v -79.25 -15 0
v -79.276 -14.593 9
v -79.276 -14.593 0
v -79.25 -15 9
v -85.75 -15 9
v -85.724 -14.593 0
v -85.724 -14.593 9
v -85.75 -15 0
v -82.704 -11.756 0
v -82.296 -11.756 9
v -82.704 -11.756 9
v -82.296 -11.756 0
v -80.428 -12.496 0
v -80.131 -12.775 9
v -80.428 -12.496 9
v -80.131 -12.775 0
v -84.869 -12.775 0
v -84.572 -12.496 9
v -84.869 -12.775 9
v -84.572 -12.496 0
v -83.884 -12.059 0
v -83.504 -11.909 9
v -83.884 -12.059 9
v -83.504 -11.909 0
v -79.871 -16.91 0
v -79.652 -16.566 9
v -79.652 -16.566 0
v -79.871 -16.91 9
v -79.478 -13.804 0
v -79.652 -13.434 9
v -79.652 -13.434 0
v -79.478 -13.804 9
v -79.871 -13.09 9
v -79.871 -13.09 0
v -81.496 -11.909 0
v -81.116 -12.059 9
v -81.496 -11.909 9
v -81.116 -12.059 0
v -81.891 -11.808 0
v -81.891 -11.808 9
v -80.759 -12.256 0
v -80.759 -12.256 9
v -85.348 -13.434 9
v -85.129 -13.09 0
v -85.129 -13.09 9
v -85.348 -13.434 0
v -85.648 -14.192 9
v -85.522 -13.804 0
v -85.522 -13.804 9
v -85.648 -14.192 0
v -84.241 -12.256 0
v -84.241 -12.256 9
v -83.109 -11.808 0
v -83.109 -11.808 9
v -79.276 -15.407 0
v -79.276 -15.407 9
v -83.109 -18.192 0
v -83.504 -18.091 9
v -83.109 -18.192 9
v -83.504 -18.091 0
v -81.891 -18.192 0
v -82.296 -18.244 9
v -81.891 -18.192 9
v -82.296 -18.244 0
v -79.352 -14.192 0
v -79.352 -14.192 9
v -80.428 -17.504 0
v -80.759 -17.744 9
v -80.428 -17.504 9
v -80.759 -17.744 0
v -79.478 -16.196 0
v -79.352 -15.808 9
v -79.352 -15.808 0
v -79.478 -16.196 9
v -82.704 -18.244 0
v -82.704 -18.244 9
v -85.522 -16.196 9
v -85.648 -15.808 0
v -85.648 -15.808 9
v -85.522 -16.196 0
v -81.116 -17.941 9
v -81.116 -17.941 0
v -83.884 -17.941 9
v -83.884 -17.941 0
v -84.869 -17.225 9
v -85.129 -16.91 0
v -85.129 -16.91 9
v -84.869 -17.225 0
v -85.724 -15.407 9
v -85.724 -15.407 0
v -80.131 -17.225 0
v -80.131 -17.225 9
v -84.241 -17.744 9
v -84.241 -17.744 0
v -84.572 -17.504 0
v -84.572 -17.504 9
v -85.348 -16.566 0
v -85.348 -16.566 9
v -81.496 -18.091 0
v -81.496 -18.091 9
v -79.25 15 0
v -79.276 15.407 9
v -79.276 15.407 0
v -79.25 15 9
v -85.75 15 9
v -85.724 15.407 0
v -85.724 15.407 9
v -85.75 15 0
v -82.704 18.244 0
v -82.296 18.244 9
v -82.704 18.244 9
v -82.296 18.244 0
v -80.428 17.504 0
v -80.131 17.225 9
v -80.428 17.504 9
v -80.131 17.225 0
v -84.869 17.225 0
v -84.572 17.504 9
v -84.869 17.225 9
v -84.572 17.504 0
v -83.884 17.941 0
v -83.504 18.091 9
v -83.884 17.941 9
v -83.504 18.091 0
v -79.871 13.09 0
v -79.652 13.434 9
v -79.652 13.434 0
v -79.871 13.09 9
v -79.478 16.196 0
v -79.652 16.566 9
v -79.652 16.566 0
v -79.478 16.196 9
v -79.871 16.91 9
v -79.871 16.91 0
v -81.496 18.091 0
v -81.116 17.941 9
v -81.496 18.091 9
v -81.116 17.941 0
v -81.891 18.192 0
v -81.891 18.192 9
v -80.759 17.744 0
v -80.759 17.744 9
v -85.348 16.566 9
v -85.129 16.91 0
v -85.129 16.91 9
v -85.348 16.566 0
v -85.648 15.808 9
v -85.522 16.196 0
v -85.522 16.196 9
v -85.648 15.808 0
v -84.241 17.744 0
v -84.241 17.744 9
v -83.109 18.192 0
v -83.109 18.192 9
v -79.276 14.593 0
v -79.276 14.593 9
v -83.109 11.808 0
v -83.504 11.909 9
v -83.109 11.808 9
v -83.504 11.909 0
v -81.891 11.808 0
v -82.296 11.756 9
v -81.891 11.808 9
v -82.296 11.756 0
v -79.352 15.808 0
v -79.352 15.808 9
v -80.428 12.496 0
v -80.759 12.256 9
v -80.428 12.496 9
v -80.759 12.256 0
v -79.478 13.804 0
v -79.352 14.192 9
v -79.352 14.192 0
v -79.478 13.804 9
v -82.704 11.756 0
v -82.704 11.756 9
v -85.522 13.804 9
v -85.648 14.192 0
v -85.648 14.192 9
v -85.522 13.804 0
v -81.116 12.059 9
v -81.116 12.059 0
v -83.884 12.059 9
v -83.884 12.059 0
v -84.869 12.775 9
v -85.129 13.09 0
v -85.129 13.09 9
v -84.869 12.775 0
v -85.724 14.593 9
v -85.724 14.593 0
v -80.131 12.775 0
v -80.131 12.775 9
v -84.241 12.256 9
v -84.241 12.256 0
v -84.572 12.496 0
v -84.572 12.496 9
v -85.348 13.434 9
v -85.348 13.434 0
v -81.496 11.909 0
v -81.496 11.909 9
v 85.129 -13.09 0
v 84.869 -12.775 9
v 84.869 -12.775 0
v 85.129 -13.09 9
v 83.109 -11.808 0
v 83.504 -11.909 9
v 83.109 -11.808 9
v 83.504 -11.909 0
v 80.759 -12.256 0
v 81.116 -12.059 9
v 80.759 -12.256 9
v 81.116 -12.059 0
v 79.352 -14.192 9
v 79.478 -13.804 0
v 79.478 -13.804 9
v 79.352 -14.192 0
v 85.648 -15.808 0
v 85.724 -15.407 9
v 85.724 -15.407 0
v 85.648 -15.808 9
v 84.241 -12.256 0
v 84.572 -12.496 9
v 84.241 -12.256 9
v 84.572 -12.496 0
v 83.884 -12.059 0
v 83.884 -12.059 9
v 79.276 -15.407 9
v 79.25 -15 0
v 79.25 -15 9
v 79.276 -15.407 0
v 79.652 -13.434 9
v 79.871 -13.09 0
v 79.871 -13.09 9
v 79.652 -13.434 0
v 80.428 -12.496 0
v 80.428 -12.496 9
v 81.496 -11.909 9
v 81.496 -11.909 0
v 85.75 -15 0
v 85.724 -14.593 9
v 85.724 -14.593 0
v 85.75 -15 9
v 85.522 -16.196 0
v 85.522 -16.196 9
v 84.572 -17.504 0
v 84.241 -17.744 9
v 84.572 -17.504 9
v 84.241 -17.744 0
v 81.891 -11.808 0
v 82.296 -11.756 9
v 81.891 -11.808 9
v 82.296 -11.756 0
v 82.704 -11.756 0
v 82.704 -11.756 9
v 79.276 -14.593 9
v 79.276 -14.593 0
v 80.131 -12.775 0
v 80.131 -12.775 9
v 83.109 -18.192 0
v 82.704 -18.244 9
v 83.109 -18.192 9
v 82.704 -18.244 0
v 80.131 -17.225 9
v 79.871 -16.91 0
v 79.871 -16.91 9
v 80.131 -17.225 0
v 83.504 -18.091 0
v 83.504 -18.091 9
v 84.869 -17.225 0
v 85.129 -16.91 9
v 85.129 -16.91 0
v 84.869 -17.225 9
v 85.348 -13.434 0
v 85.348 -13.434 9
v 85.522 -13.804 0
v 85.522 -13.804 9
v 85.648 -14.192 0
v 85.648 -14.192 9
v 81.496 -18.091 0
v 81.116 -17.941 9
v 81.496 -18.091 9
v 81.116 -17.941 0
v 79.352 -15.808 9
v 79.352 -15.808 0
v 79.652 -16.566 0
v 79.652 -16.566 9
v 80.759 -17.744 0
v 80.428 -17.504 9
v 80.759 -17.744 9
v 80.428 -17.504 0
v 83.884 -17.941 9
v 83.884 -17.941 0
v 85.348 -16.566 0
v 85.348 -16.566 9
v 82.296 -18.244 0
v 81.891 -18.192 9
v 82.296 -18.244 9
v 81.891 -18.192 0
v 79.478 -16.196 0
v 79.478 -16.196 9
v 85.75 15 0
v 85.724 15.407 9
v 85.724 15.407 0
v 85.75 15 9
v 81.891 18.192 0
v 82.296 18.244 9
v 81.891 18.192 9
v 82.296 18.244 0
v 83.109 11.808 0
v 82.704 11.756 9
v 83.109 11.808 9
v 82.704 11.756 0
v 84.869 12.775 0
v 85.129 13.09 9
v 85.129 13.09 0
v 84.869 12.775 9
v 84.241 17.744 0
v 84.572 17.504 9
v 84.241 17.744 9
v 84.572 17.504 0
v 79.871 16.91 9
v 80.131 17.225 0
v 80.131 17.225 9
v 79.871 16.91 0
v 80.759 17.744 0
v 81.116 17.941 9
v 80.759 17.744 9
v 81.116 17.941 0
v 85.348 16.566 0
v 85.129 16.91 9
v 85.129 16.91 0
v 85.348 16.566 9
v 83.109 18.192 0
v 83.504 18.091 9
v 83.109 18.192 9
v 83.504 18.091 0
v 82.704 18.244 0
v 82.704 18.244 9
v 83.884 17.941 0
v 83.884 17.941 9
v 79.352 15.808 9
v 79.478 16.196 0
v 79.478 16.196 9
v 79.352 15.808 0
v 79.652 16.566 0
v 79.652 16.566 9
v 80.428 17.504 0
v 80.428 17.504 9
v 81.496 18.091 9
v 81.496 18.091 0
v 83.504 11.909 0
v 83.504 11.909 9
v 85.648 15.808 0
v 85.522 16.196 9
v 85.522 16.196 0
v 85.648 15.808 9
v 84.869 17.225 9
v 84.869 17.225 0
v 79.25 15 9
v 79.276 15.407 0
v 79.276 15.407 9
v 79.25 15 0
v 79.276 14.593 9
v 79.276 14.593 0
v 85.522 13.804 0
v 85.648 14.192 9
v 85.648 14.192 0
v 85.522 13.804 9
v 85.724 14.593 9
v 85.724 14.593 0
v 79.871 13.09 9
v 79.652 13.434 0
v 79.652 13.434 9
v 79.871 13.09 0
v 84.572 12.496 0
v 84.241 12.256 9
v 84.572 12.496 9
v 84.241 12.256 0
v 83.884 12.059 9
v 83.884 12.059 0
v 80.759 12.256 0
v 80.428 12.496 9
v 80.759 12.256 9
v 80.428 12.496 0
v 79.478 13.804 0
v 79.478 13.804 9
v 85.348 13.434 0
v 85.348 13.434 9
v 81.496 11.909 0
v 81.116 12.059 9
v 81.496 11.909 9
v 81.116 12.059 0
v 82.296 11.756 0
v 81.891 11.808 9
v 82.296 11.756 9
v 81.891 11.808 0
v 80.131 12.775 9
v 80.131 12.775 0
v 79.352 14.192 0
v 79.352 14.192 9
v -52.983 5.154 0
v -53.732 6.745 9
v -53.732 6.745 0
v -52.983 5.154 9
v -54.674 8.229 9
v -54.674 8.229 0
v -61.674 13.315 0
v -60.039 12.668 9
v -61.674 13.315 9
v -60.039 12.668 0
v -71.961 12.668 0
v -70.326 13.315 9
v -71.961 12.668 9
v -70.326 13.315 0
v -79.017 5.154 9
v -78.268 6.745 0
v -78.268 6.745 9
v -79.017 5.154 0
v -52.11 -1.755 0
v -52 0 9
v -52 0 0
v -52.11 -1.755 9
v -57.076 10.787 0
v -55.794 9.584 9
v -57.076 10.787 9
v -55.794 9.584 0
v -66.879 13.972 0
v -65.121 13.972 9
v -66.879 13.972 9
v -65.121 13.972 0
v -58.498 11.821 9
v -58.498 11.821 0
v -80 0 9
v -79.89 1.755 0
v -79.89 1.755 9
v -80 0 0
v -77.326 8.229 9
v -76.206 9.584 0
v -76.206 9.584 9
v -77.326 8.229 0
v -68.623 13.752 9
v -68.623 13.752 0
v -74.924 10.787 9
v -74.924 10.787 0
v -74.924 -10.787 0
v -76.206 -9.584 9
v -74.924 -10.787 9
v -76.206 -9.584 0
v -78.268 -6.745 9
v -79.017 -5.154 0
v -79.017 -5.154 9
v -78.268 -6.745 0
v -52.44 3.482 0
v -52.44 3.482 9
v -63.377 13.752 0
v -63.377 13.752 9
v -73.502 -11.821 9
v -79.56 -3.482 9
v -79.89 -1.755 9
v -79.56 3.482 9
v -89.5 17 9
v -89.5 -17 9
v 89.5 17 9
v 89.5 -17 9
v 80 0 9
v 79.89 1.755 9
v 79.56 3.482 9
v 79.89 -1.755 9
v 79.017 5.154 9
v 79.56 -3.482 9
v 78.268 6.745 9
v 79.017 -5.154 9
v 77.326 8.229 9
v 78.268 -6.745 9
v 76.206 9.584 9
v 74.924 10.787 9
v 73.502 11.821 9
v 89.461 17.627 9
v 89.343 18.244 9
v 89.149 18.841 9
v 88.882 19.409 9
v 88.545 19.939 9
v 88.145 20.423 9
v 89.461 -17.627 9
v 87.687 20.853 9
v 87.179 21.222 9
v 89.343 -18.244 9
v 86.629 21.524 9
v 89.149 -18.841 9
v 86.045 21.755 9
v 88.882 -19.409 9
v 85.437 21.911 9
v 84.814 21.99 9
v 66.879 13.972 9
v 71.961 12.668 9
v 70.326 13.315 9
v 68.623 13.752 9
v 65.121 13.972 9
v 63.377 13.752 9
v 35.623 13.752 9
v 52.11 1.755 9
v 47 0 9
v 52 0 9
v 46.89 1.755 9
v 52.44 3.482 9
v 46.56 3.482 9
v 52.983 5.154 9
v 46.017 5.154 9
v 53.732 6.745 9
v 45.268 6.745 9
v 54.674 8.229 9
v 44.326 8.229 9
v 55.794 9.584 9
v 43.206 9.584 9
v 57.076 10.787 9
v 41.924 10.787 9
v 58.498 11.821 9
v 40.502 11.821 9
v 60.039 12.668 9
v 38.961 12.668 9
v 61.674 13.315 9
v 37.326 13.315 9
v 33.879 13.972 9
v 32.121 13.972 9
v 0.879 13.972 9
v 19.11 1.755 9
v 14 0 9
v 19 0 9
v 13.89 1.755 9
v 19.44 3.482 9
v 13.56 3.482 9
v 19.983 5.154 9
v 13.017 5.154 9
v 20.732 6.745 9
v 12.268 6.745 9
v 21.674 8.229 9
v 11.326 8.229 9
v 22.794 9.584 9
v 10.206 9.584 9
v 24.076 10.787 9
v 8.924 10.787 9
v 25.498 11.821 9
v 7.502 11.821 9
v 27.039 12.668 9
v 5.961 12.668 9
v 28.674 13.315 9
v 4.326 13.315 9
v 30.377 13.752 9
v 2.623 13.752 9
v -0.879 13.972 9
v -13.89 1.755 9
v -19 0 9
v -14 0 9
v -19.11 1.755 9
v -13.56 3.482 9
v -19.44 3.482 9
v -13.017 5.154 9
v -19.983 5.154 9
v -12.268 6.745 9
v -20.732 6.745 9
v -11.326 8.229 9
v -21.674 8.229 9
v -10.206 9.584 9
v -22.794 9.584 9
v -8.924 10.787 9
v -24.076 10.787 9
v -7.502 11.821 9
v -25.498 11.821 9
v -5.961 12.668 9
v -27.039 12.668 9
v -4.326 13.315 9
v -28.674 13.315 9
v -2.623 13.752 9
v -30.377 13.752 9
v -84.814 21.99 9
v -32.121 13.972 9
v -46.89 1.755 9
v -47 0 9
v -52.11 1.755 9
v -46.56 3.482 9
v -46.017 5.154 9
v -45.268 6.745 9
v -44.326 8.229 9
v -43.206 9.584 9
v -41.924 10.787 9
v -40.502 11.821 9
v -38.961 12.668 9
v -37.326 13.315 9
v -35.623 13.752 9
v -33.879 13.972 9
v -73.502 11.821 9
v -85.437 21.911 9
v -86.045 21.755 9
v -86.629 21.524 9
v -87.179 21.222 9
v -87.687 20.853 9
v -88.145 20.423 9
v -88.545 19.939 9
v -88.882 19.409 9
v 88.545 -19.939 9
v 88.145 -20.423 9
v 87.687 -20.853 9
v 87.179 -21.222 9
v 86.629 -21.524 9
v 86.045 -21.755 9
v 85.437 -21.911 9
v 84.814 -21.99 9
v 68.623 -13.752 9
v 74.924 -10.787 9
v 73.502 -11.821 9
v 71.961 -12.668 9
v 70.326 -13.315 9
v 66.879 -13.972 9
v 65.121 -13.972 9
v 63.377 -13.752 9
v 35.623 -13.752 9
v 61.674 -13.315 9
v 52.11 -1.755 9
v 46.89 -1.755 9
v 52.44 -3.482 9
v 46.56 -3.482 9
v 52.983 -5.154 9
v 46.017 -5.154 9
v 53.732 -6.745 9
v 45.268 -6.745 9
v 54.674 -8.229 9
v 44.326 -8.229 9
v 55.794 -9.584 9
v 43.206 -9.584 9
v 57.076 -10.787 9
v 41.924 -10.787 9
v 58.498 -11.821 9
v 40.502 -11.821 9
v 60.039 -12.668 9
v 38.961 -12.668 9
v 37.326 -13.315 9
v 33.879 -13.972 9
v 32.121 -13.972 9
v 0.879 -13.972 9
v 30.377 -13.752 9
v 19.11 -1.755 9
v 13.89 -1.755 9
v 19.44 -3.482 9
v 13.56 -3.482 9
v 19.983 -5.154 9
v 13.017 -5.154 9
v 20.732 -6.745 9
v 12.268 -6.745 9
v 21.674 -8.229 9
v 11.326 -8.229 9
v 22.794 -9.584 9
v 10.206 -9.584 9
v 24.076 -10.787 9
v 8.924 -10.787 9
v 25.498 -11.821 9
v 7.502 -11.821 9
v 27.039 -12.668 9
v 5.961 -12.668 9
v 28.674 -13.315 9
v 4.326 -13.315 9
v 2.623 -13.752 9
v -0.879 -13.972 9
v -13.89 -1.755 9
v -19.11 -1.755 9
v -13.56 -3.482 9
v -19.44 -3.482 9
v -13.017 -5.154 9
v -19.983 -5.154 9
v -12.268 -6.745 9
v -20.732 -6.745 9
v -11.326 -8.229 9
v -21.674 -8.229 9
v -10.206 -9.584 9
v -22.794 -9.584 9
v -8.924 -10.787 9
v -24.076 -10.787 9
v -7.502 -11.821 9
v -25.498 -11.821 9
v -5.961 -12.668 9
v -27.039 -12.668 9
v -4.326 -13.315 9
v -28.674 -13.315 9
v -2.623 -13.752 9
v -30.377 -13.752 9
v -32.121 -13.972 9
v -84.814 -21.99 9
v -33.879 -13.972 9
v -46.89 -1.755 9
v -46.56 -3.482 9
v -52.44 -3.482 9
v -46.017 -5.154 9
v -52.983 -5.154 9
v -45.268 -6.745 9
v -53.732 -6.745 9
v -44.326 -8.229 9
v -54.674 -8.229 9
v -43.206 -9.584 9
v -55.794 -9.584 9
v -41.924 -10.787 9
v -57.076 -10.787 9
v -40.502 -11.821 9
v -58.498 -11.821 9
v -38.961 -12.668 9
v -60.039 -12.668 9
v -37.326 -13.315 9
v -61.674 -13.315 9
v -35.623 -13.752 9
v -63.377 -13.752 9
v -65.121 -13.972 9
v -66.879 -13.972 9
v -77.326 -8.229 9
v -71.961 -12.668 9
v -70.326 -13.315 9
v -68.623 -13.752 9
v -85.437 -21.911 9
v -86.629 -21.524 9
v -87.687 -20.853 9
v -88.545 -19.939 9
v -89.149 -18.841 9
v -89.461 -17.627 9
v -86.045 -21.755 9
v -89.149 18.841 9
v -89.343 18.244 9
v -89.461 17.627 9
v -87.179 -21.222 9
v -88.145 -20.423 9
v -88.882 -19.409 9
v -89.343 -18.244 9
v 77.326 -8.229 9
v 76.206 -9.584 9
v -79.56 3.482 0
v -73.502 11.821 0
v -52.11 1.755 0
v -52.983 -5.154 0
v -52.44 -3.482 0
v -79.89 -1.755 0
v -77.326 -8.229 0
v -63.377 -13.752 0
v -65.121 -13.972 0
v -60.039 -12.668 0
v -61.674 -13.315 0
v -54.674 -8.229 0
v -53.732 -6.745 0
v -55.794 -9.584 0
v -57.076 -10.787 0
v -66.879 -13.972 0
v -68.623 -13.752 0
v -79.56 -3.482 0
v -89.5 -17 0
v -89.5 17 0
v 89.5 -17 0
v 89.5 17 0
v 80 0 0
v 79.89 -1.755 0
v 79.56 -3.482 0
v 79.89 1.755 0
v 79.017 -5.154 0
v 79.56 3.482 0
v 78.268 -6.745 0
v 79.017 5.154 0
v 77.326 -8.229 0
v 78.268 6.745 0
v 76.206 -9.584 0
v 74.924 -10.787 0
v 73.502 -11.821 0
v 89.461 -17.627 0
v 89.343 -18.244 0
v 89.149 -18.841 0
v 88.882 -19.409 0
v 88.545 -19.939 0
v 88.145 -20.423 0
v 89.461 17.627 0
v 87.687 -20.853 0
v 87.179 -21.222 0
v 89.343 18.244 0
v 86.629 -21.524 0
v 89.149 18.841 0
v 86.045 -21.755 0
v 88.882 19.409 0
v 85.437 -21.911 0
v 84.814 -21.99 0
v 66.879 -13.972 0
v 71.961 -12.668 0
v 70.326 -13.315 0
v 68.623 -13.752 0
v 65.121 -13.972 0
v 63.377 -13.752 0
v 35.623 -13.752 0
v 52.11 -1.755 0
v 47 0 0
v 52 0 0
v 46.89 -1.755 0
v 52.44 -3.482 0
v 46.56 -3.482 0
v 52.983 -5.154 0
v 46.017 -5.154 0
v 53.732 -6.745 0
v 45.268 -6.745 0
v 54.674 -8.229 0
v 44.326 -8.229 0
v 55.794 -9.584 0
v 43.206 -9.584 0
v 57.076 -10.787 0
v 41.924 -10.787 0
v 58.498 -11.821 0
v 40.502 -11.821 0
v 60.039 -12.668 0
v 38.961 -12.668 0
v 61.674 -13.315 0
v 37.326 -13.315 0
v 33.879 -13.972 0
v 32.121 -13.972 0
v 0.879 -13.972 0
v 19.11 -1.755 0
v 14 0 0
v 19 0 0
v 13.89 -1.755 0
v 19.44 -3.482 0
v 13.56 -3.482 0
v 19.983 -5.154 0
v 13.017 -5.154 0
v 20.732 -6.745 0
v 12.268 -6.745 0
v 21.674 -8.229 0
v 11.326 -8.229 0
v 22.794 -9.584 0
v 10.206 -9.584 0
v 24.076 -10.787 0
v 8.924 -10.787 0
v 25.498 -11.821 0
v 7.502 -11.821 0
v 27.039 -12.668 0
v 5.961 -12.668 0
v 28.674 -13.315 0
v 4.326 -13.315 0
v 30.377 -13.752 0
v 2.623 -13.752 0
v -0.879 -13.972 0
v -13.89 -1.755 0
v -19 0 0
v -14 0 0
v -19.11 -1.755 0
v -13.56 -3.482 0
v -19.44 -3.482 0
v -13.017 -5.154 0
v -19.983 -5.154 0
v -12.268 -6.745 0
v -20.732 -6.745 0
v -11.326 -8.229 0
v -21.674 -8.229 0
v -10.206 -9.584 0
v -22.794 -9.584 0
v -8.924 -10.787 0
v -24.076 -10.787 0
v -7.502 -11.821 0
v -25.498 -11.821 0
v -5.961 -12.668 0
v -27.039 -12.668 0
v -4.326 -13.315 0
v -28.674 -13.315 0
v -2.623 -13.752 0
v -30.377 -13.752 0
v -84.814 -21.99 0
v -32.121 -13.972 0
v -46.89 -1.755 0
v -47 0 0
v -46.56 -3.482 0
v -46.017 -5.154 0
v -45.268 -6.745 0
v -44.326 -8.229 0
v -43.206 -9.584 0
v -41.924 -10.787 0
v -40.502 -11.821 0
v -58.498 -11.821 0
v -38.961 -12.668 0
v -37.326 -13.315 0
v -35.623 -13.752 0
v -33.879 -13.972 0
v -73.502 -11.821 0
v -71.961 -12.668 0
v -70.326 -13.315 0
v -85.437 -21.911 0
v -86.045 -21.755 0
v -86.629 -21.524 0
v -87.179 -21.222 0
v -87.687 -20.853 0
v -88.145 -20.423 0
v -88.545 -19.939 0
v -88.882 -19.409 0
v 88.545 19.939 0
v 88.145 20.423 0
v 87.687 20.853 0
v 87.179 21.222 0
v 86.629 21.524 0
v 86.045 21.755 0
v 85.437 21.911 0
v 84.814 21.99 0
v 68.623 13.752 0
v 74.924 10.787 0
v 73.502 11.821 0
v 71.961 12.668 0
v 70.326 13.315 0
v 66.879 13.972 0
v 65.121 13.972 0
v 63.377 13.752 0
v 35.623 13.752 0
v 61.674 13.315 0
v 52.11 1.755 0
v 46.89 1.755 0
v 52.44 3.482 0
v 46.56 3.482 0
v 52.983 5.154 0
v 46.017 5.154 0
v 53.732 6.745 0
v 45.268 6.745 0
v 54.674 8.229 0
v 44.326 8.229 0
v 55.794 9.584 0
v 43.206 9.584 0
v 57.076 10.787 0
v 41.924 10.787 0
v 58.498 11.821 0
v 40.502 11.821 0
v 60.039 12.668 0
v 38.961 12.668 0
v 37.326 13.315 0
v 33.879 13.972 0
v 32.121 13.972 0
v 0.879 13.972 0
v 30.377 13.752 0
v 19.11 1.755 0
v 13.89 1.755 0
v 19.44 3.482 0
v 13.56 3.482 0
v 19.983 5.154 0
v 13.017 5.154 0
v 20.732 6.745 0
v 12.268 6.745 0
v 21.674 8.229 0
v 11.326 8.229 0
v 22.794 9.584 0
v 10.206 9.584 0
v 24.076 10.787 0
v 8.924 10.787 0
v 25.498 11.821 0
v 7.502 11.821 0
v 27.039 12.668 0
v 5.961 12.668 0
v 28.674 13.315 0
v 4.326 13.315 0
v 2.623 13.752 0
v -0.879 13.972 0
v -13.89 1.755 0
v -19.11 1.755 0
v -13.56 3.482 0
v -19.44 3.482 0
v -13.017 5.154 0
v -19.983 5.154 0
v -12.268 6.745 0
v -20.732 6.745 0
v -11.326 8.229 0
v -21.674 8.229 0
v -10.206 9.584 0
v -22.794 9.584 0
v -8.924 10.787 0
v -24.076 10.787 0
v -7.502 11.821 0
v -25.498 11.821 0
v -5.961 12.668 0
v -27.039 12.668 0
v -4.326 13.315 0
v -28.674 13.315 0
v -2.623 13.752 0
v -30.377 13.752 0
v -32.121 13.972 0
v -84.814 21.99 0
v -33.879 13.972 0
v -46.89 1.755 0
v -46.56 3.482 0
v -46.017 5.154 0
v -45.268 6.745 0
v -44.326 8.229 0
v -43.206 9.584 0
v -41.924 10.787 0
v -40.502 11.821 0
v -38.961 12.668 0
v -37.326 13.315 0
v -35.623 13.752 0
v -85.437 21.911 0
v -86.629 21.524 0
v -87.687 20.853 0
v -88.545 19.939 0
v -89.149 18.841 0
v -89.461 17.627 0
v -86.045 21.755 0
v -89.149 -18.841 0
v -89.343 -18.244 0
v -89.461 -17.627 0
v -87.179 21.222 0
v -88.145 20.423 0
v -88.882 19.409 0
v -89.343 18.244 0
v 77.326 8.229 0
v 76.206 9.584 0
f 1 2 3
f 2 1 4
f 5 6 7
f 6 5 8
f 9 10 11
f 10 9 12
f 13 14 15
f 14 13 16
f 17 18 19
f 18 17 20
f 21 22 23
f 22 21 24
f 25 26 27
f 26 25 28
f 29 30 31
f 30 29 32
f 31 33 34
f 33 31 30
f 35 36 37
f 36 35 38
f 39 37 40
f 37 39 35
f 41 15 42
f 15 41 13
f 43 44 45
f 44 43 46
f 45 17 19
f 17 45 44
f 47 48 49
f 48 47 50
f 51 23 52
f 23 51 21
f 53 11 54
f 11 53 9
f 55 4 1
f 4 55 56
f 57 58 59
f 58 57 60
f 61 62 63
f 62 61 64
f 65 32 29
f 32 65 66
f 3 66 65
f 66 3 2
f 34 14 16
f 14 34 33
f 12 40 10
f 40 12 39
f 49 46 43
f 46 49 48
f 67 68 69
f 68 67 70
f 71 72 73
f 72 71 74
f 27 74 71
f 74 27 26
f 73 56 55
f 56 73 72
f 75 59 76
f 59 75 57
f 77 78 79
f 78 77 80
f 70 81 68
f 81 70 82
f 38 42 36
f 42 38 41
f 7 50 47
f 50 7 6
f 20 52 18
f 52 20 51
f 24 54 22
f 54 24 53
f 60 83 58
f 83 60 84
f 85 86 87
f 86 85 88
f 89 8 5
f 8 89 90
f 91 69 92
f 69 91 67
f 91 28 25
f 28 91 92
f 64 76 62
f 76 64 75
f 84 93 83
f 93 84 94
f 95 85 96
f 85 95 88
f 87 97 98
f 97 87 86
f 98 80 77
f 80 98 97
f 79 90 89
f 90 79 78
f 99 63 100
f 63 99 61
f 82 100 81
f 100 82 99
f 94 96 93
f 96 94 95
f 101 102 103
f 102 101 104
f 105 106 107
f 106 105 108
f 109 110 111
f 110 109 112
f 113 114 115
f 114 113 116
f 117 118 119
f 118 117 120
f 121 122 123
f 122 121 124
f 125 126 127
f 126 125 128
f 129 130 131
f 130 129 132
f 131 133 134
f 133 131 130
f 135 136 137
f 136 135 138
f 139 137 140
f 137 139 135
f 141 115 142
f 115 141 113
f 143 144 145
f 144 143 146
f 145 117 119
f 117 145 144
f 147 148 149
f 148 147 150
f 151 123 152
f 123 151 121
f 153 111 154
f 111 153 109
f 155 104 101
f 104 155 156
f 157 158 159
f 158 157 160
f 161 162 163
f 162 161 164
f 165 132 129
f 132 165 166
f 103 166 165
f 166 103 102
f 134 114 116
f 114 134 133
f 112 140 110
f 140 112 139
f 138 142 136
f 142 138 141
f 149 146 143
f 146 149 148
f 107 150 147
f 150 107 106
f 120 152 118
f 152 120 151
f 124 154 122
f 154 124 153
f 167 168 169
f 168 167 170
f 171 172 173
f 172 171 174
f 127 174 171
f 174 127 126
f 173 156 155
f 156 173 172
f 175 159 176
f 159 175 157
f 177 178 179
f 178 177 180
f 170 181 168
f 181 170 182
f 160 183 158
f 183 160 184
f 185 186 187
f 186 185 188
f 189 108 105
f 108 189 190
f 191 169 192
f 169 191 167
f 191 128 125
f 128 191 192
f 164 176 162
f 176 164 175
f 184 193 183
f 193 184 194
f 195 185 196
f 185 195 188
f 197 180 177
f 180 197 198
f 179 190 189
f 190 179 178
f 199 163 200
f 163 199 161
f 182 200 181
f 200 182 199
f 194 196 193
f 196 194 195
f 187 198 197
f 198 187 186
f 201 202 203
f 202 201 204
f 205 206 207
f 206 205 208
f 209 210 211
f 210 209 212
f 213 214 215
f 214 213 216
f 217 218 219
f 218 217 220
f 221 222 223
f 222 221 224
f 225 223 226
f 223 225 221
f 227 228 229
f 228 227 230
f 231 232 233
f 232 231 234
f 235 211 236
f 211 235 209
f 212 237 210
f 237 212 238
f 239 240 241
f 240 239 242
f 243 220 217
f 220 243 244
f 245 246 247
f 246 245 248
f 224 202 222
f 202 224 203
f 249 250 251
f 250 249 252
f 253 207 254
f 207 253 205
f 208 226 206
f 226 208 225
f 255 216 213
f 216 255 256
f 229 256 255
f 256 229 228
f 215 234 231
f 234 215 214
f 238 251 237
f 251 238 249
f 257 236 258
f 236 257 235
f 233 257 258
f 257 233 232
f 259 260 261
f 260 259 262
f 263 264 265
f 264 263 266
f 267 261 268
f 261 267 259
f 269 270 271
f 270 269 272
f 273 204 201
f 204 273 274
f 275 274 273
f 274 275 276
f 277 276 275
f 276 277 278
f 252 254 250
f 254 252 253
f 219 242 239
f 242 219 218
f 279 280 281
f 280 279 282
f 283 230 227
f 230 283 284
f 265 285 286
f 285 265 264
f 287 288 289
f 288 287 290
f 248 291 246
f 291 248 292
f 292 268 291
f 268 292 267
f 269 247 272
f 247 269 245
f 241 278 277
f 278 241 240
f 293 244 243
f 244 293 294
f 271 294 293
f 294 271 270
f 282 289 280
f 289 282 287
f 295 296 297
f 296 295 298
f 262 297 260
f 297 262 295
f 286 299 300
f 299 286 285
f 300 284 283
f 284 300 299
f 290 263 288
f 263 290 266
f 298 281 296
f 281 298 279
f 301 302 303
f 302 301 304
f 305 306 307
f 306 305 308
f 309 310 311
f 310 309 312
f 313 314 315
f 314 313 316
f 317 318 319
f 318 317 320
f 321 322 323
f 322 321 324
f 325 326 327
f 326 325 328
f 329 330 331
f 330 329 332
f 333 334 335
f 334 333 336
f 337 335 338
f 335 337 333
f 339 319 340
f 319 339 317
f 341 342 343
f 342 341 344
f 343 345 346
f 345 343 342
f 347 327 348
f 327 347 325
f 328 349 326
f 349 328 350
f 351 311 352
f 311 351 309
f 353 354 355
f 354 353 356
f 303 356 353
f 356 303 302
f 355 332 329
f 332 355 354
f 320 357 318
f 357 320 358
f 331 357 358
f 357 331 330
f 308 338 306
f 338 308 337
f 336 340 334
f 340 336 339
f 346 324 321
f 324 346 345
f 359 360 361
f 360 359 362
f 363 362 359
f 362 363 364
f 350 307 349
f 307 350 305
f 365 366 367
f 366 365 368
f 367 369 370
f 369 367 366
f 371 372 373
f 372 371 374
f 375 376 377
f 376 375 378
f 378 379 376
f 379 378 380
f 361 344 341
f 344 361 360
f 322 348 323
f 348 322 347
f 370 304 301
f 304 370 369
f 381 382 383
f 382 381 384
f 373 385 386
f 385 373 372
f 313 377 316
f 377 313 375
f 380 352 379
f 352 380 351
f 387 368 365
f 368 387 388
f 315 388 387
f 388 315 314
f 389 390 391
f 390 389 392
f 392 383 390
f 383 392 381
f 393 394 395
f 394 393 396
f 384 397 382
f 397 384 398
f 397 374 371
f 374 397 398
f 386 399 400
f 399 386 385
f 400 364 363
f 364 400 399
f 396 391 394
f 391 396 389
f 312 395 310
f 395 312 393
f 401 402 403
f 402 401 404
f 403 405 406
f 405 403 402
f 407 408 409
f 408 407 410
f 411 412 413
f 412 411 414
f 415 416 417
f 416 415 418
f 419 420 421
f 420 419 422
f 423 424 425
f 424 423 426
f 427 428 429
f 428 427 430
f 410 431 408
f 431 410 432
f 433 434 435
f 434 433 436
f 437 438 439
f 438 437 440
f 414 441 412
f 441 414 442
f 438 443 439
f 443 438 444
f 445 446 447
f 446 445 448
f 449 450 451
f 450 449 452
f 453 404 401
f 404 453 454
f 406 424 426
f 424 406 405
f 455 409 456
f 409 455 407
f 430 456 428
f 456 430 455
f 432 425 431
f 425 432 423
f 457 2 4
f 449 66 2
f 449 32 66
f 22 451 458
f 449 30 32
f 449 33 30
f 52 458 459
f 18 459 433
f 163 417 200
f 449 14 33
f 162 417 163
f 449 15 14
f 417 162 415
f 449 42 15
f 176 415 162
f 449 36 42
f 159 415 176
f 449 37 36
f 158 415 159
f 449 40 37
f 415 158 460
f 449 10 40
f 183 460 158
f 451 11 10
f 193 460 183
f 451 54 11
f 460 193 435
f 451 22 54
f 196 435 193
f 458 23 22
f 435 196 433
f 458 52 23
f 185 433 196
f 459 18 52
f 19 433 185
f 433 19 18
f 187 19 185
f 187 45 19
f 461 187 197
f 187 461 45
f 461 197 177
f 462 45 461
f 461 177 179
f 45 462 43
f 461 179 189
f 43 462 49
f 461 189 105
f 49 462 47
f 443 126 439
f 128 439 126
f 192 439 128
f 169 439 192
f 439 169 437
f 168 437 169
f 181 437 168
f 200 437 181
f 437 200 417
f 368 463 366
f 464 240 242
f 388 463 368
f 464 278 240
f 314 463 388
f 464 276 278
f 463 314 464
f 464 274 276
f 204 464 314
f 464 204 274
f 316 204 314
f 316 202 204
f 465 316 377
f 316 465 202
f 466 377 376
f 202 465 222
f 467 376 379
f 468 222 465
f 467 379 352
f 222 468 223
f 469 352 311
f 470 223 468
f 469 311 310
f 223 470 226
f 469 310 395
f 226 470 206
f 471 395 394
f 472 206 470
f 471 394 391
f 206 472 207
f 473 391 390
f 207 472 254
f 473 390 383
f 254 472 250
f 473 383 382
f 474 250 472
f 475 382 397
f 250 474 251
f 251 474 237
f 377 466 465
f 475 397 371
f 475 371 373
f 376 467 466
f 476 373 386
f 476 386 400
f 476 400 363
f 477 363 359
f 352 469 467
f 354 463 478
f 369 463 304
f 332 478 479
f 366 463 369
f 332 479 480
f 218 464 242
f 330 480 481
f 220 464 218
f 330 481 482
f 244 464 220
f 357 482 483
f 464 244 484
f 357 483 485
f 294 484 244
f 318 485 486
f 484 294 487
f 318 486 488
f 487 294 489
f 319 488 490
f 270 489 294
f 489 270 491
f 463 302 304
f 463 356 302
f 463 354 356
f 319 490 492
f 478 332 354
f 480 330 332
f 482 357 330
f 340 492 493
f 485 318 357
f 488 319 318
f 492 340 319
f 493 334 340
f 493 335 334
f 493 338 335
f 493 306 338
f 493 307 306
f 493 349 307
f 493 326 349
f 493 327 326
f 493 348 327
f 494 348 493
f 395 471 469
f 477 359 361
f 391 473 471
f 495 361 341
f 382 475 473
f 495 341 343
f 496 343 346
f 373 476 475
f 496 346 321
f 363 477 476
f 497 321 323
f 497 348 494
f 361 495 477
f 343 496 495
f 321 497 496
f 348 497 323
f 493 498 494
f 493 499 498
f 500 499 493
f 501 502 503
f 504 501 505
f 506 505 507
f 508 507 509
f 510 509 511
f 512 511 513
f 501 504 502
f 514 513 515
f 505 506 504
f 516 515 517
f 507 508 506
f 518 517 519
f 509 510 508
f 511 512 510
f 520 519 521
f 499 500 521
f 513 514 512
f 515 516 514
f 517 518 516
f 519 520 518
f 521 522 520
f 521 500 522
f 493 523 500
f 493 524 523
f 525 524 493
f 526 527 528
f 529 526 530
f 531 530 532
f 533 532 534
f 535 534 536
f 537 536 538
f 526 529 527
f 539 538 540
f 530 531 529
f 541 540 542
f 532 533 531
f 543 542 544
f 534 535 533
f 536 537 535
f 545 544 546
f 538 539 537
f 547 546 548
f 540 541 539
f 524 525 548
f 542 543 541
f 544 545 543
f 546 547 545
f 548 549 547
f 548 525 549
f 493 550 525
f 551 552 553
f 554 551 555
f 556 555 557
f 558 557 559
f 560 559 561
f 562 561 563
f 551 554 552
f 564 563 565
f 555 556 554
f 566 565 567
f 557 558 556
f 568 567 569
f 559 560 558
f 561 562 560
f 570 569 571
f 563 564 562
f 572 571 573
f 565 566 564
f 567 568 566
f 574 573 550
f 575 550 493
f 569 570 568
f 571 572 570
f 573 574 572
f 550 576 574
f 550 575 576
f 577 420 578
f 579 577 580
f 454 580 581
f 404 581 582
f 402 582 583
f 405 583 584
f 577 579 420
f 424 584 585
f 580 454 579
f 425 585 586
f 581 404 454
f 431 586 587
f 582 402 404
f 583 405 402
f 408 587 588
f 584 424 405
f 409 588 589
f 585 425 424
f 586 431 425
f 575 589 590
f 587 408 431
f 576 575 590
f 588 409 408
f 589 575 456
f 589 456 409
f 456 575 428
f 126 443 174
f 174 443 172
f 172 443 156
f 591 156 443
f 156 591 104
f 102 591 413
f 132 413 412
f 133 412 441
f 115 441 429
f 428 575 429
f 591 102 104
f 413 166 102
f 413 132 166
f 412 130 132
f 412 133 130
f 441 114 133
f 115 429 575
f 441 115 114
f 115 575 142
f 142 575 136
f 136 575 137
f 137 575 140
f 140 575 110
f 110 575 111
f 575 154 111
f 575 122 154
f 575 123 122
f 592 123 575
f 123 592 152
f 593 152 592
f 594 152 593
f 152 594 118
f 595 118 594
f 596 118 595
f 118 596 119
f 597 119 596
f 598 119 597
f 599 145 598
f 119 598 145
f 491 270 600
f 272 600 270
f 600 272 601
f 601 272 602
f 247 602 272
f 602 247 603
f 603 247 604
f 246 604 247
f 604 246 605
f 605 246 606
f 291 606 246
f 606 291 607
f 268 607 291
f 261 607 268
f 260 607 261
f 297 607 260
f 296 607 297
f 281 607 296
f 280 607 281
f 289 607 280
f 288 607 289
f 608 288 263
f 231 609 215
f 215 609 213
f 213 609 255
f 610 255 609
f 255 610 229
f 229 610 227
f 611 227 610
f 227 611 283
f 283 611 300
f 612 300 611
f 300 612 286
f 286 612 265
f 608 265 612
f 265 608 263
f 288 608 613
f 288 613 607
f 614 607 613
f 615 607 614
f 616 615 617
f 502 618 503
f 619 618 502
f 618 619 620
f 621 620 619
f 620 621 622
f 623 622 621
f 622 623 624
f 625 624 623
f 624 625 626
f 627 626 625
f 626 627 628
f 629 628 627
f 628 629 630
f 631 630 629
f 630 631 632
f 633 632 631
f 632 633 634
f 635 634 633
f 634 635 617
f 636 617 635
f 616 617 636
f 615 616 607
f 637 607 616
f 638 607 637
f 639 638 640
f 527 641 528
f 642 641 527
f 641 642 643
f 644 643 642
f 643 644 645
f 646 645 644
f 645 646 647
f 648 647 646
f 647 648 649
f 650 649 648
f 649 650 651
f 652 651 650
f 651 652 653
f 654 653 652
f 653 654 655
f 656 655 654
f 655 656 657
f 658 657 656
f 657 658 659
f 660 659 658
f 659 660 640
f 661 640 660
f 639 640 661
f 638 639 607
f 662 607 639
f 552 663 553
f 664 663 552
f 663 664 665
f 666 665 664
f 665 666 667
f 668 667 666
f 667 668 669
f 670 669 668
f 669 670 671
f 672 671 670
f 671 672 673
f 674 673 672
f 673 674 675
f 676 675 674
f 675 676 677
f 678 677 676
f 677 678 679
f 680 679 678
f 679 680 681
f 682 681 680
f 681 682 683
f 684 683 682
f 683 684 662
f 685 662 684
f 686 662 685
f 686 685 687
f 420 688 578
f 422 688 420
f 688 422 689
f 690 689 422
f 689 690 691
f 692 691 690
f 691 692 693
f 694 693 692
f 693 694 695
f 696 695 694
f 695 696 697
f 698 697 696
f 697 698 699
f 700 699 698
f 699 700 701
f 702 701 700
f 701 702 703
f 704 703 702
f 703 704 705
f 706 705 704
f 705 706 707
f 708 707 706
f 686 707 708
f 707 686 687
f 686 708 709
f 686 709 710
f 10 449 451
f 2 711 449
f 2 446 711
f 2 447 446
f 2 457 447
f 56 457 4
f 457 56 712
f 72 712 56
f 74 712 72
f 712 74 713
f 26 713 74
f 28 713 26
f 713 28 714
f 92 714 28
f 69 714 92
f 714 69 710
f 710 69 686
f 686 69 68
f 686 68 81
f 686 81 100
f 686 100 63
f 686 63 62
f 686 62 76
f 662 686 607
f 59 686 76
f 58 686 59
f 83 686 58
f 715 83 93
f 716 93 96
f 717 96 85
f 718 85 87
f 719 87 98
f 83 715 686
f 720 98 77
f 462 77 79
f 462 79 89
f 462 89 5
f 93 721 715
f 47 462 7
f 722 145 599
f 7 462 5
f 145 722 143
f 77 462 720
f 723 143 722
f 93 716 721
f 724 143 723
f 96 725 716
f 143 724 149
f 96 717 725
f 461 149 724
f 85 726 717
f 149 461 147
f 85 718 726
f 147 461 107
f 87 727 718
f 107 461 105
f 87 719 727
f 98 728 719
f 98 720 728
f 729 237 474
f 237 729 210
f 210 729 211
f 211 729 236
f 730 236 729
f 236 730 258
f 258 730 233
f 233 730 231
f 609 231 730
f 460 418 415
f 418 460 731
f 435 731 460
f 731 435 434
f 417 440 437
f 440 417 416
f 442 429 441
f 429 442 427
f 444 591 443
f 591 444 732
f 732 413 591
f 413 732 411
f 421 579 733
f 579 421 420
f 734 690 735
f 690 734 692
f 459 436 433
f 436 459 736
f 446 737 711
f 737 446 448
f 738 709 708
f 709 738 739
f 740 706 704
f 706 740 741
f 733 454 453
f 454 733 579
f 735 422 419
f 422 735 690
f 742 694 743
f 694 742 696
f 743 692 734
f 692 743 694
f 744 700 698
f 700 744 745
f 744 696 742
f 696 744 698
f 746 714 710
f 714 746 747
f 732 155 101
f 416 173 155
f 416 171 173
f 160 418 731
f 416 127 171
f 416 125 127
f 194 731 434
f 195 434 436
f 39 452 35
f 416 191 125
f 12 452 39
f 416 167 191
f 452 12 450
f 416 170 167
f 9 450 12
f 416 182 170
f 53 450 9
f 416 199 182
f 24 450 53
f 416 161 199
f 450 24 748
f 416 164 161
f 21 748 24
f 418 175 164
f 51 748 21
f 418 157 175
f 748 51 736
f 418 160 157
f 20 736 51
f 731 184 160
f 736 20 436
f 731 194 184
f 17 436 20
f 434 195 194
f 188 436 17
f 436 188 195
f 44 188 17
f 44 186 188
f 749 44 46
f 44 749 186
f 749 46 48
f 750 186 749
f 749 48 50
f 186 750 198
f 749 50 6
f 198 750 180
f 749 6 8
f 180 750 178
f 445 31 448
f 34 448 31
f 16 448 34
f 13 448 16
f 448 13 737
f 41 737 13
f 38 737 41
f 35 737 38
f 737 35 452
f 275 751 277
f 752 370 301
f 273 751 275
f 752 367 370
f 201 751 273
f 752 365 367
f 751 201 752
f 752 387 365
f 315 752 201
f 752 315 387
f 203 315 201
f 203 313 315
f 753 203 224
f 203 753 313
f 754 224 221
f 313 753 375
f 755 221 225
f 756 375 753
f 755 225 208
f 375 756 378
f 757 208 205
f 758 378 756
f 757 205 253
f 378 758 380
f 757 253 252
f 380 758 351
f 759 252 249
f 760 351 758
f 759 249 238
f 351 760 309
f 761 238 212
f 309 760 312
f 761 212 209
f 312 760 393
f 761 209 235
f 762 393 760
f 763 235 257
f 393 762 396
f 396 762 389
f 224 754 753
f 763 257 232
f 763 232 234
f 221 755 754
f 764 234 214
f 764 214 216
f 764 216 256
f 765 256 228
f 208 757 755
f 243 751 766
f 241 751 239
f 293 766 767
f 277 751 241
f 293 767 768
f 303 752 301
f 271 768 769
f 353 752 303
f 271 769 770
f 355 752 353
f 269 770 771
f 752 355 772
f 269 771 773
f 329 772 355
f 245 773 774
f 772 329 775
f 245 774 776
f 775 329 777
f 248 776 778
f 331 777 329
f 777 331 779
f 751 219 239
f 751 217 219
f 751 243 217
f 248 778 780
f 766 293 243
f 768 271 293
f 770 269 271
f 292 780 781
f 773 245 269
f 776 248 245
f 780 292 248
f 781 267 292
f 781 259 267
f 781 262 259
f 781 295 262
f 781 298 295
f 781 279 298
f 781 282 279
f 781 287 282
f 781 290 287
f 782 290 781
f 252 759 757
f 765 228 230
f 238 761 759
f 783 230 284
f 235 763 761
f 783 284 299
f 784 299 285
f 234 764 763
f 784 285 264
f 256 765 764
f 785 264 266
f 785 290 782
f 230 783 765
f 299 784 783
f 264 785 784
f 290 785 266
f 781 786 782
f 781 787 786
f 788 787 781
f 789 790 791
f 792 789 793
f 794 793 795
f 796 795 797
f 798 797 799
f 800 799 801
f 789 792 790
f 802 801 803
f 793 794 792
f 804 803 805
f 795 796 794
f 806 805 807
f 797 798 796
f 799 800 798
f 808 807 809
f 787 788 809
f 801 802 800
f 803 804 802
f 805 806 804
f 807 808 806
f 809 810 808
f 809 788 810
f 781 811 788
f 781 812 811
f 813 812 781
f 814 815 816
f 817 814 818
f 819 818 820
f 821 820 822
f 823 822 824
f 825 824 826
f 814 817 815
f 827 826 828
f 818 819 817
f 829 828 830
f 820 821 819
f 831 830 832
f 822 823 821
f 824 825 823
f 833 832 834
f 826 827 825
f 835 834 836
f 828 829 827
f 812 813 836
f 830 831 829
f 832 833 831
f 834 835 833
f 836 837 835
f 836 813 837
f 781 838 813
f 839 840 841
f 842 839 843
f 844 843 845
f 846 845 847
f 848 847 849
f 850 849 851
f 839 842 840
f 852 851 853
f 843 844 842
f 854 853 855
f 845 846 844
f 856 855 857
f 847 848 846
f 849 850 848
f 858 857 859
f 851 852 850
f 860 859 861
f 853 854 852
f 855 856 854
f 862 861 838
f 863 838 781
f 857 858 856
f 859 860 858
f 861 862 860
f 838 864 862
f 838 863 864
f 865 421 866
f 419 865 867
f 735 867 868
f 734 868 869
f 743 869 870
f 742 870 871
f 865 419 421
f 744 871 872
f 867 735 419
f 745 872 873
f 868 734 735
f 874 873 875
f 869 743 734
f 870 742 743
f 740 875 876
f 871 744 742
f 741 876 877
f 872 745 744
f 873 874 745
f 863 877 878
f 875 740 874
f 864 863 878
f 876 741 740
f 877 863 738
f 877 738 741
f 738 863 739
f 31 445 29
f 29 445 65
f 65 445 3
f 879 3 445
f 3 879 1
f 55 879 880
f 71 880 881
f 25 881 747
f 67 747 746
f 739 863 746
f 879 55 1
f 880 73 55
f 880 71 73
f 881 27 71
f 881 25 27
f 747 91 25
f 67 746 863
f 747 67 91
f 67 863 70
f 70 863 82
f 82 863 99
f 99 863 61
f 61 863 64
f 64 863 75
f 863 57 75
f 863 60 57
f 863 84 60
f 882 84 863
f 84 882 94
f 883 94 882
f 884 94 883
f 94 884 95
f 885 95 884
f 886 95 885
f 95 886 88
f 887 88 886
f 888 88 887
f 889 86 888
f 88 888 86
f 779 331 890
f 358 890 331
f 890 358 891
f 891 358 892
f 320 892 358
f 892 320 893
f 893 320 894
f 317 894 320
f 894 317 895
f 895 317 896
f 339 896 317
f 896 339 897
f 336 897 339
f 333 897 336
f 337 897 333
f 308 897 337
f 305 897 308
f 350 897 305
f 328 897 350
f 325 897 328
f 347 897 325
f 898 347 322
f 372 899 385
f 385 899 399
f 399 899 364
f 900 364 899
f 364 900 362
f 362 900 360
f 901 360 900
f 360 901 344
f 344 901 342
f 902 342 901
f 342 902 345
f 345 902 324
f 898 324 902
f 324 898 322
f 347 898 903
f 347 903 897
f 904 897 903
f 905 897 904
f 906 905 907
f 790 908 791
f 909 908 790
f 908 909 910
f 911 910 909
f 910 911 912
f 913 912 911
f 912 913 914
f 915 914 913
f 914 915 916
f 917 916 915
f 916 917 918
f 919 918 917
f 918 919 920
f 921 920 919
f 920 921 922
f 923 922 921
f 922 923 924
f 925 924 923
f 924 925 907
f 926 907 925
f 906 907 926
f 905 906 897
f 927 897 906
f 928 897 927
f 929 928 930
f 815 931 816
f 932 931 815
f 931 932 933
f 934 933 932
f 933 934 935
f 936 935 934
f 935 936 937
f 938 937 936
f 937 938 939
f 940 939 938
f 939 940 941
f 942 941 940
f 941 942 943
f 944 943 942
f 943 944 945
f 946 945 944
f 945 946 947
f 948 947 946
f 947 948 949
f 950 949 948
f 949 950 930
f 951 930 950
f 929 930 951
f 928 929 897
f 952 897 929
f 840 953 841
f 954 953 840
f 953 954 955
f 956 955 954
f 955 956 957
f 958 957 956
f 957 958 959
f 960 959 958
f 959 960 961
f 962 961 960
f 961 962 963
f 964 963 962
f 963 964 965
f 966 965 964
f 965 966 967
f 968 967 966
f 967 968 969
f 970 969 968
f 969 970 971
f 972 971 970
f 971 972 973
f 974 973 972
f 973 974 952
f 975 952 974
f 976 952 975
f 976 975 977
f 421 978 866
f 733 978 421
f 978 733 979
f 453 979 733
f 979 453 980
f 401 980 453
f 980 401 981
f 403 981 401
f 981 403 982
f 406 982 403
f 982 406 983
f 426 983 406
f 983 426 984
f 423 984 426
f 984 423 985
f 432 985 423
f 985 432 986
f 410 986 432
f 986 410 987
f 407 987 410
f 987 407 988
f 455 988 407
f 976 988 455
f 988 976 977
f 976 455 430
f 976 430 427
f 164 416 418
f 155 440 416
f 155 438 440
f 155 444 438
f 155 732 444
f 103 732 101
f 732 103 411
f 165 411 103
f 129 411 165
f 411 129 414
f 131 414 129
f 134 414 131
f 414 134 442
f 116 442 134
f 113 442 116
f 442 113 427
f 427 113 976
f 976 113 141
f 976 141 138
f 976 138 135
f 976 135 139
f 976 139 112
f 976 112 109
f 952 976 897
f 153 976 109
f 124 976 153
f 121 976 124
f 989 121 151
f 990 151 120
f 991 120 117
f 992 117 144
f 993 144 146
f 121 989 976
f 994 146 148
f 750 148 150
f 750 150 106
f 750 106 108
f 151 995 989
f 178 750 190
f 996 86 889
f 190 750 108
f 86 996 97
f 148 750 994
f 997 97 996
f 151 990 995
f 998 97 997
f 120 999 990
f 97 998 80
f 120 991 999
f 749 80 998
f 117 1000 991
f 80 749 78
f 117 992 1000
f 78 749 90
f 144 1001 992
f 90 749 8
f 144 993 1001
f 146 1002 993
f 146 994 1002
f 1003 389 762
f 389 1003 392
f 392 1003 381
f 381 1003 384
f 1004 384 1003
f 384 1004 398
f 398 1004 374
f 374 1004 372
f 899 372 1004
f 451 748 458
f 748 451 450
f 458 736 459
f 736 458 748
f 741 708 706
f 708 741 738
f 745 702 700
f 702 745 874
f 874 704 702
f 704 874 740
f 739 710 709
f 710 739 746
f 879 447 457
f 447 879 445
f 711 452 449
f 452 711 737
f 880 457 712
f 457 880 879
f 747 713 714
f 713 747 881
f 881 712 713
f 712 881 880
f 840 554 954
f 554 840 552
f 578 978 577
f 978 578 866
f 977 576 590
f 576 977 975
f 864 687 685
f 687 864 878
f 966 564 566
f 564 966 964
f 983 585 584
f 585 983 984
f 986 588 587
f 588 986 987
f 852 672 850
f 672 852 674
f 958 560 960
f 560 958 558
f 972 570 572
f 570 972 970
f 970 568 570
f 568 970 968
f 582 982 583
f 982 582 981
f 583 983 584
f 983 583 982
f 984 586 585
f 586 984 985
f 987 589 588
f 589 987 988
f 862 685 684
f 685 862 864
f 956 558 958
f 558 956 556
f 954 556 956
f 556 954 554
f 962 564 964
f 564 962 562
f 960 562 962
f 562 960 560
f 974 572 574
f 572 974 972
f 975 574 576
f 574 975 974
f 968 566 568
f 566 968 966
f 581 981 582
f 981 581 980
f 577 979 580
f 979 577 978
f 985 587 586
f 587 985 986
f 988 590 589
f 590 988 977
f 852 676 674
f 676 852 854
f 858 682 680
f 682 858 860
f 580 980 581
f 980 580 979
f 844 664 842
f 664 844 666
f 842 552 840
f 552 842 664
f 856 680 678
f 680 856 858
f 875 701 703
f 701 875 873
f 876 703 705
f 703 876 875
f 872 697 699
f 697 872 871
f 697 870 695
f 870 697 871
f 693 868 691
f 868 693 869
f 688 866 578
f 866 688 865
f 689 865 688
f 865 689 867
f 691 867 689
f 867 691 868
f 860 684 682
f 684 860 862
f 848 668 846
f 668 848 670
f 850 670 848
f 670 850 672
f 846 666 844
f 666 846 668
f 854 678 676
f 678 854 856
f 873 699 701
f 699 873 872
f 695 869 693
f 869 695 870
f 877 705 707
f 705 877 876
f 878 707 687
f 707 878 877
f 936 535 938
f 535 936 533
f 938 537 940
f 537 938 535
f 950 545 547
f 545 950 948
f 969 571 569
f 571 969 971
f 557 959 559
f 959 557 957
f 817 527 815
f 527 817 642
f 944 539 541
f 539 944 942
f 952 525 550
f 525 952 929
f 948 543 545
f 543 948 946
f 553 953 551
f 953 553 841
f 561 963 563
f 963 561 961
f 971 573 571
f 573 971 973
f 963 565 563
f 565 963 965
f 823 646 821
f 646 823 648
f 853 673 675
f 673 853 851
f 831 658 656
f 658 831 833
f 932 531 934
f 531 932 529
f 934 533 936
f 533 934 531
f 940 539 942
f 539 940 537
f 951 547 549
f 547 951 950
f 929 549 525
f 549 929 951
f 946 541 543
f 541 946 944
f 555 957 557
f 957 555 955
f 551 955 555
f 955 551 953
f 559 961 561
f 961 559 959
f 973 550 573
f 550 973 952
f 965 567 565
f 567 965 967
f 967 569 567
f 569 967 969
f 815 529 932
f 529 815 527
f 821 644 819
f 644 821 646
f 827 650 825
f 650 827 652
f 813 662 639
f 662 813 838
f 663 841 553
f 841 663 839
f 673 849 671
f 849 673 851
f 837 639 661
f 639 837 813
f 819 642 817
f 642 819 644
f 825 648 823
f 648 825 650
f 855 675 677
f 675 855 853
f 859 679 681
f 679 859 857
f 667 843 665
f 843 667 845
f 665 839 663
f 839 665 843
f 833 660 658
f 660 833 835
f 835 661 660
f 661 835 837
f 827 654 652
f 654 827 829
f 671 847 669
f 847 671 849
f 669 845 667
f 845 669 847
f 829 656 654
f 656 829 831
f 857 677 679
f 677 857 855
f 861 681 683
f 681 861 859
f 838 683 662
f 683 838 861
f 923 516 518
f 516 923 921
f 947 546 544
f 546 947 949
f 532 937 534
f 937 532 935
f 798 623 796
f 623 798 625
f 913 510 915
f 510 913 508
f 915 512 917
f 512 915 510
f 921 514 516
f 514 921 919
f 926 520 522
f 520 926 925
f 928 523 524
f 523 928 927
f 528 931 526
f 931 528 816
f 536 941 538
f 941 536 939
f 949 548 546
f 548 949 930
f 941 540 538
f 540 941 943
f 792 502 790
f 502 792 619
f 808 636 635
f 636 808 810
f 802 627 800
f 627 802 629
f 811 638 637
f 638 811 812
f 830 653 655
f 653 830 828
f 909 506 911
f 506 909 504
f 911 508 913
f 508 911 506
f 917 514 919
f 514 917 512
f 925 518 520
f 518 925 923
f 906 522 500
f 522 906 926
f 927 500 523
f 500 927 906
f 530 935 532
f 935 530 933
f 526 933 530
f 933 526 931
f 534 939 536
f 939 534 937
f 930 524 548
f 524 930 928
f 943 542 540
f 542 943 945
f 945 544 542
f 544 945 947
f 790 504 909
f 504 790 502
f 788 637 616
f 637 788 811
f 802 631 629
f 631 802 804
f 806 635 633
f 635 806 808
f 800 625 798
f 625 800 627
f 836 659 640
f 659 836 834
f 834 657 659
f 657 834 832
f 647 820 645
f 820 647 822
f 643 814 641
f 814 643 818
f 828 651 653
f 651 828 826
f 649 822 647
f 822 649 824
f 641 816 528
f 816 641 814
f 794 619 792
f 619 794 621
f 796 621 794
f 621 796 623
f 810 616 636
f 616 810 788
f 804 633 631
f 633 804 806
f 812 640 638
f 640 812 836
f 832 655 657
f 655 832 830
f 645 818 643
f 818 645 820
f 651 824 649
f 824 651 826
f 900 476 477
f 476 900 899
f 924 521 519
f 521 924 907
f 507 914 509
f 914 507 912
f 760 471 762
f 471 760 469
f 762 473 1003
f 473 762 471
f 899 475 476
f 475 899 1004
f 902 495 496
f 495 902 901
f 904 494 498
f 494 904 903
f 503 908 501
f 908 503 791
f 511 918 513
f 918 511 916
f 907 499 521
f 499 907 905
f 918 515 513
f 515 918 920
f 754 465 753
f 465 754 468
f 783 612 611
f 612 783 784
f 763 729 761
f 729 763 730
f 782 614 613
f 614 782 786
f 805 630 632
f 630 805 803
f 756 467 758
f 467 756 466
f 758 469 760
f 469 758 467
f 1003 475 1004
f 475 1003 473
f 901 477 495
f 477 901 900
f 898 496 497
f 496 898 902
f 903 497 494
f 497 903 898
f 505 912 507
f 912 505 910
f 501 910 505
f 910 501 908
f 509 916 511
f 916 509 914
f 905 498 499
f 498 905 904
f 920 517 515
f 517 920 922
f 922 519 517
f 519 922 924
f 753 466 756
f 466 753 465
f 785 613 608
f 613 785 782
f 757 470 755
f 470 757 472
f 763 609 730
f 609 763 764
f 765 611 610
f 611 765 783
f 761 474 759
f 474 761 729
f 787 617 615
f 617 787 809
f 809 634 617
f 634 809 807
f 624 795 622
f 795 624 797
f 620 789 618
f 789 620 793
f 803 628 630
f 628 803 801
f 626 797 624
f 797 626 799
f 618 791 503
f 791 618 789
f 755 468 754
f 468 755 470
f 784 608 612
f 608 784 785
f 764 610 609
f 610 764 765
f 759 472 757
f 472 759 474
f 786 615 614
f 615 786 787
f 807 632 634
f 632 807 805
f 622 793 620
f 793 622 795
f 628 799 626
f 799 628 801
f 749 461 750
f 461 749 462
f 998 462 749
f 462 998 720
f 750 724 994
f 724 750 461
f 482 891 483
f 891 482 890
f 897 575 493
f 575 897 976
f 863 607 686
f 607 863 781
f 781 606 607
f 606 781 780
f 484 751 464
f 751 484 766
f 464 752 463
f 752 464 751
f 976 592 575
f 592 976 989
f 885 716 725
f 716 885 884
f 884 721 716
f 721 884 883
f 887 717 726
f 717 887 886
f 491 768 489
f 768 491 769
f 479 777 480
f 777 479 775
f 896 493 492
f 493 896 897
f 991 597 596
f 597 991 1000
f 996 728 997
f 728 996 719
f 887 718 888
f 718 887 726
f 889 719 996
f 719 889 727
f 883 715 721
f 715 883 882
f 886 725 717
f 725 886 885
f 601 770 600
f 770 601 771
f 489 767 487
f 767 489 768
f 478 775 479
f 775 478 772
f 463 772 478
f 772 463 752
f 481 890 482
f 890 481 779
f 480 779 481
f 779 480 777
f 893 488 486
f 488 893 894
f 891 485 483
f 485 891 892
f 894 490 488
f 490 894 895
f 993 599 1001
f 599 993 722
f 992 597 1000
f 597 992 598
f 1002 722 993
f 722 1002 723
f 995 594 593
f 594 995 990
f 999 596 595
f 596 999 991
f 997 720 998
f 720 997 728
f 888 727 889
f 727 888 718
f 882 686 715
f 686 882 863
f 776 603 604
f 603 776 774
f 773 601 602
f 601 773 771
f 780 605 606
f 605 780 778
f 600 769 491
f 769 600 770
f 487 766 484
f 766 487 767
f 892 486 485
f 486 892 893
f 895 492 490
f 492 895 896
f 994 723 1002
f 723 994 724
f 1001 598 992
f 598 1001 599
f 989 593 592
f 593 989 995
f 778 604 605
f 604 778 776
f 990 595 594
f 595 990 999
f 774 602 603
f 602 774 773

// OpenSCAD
$fn = 50;


difference() {
	union() {
		hull() {
			translate(v = [-84.5000000000, 17.0000000000, 0]) {
				cylinder(h = 9, r = 5);
			}
			translate(v = [84.5000000000, 17.0000000000, 0]) {
				cylinder(h = 9, r = 5);
			}
			translate(v = [-84.5000000000, -17.0000000000, 0]) {
				cylinder(h = 9, r = 5);
			}
			translate(v = [84.5000000000, -17.0000000000, 0]) {
				cylinder(h = 9, r = 5);
			}
		}
	}
	union() {
		#translate(v = [-82.5000000000, -15.0000000000, -100.0000000000]) {
			cylinder(h = 200, r = 3.2500000000);
		}
		#translate(v = [-82.5000000000, 15.0000000000, -100.0000000000]) {
			cylinder(h = 200, r = 3.2500000000);
		}
		#translate(v = [82.5000000000, -15.0000000000, -100.0000000000]) {
			cylinder(h = 200, r = 3.2500000000);
		}
		#translate(v = [82.5000000000, 15.0000000000, -100.0000000000]) {
			cylinder(h = 200, r = 3.2500000000);
		}
		#translate(v = [-66.0000000000, 0, 0]) {
			cylinder(h = 9, r = 14.0000000000);
		}
		#translate(v = [-33.0000000000, 0, 0]) {
			cylinder(h = 9, r = 14.0000000000);
		}
		#cylinder(h = 9, r = 14.0000000000);
		#translate(v = [33.0000000000, 0, 0]) {
			cylinder(h = 9, r = 14.0000000000);
		}
		#translate(v = [66.0000000000, 0, 0]) {
			cylinder(h = 9, r = 14.0000000000);
		}
	}
}
